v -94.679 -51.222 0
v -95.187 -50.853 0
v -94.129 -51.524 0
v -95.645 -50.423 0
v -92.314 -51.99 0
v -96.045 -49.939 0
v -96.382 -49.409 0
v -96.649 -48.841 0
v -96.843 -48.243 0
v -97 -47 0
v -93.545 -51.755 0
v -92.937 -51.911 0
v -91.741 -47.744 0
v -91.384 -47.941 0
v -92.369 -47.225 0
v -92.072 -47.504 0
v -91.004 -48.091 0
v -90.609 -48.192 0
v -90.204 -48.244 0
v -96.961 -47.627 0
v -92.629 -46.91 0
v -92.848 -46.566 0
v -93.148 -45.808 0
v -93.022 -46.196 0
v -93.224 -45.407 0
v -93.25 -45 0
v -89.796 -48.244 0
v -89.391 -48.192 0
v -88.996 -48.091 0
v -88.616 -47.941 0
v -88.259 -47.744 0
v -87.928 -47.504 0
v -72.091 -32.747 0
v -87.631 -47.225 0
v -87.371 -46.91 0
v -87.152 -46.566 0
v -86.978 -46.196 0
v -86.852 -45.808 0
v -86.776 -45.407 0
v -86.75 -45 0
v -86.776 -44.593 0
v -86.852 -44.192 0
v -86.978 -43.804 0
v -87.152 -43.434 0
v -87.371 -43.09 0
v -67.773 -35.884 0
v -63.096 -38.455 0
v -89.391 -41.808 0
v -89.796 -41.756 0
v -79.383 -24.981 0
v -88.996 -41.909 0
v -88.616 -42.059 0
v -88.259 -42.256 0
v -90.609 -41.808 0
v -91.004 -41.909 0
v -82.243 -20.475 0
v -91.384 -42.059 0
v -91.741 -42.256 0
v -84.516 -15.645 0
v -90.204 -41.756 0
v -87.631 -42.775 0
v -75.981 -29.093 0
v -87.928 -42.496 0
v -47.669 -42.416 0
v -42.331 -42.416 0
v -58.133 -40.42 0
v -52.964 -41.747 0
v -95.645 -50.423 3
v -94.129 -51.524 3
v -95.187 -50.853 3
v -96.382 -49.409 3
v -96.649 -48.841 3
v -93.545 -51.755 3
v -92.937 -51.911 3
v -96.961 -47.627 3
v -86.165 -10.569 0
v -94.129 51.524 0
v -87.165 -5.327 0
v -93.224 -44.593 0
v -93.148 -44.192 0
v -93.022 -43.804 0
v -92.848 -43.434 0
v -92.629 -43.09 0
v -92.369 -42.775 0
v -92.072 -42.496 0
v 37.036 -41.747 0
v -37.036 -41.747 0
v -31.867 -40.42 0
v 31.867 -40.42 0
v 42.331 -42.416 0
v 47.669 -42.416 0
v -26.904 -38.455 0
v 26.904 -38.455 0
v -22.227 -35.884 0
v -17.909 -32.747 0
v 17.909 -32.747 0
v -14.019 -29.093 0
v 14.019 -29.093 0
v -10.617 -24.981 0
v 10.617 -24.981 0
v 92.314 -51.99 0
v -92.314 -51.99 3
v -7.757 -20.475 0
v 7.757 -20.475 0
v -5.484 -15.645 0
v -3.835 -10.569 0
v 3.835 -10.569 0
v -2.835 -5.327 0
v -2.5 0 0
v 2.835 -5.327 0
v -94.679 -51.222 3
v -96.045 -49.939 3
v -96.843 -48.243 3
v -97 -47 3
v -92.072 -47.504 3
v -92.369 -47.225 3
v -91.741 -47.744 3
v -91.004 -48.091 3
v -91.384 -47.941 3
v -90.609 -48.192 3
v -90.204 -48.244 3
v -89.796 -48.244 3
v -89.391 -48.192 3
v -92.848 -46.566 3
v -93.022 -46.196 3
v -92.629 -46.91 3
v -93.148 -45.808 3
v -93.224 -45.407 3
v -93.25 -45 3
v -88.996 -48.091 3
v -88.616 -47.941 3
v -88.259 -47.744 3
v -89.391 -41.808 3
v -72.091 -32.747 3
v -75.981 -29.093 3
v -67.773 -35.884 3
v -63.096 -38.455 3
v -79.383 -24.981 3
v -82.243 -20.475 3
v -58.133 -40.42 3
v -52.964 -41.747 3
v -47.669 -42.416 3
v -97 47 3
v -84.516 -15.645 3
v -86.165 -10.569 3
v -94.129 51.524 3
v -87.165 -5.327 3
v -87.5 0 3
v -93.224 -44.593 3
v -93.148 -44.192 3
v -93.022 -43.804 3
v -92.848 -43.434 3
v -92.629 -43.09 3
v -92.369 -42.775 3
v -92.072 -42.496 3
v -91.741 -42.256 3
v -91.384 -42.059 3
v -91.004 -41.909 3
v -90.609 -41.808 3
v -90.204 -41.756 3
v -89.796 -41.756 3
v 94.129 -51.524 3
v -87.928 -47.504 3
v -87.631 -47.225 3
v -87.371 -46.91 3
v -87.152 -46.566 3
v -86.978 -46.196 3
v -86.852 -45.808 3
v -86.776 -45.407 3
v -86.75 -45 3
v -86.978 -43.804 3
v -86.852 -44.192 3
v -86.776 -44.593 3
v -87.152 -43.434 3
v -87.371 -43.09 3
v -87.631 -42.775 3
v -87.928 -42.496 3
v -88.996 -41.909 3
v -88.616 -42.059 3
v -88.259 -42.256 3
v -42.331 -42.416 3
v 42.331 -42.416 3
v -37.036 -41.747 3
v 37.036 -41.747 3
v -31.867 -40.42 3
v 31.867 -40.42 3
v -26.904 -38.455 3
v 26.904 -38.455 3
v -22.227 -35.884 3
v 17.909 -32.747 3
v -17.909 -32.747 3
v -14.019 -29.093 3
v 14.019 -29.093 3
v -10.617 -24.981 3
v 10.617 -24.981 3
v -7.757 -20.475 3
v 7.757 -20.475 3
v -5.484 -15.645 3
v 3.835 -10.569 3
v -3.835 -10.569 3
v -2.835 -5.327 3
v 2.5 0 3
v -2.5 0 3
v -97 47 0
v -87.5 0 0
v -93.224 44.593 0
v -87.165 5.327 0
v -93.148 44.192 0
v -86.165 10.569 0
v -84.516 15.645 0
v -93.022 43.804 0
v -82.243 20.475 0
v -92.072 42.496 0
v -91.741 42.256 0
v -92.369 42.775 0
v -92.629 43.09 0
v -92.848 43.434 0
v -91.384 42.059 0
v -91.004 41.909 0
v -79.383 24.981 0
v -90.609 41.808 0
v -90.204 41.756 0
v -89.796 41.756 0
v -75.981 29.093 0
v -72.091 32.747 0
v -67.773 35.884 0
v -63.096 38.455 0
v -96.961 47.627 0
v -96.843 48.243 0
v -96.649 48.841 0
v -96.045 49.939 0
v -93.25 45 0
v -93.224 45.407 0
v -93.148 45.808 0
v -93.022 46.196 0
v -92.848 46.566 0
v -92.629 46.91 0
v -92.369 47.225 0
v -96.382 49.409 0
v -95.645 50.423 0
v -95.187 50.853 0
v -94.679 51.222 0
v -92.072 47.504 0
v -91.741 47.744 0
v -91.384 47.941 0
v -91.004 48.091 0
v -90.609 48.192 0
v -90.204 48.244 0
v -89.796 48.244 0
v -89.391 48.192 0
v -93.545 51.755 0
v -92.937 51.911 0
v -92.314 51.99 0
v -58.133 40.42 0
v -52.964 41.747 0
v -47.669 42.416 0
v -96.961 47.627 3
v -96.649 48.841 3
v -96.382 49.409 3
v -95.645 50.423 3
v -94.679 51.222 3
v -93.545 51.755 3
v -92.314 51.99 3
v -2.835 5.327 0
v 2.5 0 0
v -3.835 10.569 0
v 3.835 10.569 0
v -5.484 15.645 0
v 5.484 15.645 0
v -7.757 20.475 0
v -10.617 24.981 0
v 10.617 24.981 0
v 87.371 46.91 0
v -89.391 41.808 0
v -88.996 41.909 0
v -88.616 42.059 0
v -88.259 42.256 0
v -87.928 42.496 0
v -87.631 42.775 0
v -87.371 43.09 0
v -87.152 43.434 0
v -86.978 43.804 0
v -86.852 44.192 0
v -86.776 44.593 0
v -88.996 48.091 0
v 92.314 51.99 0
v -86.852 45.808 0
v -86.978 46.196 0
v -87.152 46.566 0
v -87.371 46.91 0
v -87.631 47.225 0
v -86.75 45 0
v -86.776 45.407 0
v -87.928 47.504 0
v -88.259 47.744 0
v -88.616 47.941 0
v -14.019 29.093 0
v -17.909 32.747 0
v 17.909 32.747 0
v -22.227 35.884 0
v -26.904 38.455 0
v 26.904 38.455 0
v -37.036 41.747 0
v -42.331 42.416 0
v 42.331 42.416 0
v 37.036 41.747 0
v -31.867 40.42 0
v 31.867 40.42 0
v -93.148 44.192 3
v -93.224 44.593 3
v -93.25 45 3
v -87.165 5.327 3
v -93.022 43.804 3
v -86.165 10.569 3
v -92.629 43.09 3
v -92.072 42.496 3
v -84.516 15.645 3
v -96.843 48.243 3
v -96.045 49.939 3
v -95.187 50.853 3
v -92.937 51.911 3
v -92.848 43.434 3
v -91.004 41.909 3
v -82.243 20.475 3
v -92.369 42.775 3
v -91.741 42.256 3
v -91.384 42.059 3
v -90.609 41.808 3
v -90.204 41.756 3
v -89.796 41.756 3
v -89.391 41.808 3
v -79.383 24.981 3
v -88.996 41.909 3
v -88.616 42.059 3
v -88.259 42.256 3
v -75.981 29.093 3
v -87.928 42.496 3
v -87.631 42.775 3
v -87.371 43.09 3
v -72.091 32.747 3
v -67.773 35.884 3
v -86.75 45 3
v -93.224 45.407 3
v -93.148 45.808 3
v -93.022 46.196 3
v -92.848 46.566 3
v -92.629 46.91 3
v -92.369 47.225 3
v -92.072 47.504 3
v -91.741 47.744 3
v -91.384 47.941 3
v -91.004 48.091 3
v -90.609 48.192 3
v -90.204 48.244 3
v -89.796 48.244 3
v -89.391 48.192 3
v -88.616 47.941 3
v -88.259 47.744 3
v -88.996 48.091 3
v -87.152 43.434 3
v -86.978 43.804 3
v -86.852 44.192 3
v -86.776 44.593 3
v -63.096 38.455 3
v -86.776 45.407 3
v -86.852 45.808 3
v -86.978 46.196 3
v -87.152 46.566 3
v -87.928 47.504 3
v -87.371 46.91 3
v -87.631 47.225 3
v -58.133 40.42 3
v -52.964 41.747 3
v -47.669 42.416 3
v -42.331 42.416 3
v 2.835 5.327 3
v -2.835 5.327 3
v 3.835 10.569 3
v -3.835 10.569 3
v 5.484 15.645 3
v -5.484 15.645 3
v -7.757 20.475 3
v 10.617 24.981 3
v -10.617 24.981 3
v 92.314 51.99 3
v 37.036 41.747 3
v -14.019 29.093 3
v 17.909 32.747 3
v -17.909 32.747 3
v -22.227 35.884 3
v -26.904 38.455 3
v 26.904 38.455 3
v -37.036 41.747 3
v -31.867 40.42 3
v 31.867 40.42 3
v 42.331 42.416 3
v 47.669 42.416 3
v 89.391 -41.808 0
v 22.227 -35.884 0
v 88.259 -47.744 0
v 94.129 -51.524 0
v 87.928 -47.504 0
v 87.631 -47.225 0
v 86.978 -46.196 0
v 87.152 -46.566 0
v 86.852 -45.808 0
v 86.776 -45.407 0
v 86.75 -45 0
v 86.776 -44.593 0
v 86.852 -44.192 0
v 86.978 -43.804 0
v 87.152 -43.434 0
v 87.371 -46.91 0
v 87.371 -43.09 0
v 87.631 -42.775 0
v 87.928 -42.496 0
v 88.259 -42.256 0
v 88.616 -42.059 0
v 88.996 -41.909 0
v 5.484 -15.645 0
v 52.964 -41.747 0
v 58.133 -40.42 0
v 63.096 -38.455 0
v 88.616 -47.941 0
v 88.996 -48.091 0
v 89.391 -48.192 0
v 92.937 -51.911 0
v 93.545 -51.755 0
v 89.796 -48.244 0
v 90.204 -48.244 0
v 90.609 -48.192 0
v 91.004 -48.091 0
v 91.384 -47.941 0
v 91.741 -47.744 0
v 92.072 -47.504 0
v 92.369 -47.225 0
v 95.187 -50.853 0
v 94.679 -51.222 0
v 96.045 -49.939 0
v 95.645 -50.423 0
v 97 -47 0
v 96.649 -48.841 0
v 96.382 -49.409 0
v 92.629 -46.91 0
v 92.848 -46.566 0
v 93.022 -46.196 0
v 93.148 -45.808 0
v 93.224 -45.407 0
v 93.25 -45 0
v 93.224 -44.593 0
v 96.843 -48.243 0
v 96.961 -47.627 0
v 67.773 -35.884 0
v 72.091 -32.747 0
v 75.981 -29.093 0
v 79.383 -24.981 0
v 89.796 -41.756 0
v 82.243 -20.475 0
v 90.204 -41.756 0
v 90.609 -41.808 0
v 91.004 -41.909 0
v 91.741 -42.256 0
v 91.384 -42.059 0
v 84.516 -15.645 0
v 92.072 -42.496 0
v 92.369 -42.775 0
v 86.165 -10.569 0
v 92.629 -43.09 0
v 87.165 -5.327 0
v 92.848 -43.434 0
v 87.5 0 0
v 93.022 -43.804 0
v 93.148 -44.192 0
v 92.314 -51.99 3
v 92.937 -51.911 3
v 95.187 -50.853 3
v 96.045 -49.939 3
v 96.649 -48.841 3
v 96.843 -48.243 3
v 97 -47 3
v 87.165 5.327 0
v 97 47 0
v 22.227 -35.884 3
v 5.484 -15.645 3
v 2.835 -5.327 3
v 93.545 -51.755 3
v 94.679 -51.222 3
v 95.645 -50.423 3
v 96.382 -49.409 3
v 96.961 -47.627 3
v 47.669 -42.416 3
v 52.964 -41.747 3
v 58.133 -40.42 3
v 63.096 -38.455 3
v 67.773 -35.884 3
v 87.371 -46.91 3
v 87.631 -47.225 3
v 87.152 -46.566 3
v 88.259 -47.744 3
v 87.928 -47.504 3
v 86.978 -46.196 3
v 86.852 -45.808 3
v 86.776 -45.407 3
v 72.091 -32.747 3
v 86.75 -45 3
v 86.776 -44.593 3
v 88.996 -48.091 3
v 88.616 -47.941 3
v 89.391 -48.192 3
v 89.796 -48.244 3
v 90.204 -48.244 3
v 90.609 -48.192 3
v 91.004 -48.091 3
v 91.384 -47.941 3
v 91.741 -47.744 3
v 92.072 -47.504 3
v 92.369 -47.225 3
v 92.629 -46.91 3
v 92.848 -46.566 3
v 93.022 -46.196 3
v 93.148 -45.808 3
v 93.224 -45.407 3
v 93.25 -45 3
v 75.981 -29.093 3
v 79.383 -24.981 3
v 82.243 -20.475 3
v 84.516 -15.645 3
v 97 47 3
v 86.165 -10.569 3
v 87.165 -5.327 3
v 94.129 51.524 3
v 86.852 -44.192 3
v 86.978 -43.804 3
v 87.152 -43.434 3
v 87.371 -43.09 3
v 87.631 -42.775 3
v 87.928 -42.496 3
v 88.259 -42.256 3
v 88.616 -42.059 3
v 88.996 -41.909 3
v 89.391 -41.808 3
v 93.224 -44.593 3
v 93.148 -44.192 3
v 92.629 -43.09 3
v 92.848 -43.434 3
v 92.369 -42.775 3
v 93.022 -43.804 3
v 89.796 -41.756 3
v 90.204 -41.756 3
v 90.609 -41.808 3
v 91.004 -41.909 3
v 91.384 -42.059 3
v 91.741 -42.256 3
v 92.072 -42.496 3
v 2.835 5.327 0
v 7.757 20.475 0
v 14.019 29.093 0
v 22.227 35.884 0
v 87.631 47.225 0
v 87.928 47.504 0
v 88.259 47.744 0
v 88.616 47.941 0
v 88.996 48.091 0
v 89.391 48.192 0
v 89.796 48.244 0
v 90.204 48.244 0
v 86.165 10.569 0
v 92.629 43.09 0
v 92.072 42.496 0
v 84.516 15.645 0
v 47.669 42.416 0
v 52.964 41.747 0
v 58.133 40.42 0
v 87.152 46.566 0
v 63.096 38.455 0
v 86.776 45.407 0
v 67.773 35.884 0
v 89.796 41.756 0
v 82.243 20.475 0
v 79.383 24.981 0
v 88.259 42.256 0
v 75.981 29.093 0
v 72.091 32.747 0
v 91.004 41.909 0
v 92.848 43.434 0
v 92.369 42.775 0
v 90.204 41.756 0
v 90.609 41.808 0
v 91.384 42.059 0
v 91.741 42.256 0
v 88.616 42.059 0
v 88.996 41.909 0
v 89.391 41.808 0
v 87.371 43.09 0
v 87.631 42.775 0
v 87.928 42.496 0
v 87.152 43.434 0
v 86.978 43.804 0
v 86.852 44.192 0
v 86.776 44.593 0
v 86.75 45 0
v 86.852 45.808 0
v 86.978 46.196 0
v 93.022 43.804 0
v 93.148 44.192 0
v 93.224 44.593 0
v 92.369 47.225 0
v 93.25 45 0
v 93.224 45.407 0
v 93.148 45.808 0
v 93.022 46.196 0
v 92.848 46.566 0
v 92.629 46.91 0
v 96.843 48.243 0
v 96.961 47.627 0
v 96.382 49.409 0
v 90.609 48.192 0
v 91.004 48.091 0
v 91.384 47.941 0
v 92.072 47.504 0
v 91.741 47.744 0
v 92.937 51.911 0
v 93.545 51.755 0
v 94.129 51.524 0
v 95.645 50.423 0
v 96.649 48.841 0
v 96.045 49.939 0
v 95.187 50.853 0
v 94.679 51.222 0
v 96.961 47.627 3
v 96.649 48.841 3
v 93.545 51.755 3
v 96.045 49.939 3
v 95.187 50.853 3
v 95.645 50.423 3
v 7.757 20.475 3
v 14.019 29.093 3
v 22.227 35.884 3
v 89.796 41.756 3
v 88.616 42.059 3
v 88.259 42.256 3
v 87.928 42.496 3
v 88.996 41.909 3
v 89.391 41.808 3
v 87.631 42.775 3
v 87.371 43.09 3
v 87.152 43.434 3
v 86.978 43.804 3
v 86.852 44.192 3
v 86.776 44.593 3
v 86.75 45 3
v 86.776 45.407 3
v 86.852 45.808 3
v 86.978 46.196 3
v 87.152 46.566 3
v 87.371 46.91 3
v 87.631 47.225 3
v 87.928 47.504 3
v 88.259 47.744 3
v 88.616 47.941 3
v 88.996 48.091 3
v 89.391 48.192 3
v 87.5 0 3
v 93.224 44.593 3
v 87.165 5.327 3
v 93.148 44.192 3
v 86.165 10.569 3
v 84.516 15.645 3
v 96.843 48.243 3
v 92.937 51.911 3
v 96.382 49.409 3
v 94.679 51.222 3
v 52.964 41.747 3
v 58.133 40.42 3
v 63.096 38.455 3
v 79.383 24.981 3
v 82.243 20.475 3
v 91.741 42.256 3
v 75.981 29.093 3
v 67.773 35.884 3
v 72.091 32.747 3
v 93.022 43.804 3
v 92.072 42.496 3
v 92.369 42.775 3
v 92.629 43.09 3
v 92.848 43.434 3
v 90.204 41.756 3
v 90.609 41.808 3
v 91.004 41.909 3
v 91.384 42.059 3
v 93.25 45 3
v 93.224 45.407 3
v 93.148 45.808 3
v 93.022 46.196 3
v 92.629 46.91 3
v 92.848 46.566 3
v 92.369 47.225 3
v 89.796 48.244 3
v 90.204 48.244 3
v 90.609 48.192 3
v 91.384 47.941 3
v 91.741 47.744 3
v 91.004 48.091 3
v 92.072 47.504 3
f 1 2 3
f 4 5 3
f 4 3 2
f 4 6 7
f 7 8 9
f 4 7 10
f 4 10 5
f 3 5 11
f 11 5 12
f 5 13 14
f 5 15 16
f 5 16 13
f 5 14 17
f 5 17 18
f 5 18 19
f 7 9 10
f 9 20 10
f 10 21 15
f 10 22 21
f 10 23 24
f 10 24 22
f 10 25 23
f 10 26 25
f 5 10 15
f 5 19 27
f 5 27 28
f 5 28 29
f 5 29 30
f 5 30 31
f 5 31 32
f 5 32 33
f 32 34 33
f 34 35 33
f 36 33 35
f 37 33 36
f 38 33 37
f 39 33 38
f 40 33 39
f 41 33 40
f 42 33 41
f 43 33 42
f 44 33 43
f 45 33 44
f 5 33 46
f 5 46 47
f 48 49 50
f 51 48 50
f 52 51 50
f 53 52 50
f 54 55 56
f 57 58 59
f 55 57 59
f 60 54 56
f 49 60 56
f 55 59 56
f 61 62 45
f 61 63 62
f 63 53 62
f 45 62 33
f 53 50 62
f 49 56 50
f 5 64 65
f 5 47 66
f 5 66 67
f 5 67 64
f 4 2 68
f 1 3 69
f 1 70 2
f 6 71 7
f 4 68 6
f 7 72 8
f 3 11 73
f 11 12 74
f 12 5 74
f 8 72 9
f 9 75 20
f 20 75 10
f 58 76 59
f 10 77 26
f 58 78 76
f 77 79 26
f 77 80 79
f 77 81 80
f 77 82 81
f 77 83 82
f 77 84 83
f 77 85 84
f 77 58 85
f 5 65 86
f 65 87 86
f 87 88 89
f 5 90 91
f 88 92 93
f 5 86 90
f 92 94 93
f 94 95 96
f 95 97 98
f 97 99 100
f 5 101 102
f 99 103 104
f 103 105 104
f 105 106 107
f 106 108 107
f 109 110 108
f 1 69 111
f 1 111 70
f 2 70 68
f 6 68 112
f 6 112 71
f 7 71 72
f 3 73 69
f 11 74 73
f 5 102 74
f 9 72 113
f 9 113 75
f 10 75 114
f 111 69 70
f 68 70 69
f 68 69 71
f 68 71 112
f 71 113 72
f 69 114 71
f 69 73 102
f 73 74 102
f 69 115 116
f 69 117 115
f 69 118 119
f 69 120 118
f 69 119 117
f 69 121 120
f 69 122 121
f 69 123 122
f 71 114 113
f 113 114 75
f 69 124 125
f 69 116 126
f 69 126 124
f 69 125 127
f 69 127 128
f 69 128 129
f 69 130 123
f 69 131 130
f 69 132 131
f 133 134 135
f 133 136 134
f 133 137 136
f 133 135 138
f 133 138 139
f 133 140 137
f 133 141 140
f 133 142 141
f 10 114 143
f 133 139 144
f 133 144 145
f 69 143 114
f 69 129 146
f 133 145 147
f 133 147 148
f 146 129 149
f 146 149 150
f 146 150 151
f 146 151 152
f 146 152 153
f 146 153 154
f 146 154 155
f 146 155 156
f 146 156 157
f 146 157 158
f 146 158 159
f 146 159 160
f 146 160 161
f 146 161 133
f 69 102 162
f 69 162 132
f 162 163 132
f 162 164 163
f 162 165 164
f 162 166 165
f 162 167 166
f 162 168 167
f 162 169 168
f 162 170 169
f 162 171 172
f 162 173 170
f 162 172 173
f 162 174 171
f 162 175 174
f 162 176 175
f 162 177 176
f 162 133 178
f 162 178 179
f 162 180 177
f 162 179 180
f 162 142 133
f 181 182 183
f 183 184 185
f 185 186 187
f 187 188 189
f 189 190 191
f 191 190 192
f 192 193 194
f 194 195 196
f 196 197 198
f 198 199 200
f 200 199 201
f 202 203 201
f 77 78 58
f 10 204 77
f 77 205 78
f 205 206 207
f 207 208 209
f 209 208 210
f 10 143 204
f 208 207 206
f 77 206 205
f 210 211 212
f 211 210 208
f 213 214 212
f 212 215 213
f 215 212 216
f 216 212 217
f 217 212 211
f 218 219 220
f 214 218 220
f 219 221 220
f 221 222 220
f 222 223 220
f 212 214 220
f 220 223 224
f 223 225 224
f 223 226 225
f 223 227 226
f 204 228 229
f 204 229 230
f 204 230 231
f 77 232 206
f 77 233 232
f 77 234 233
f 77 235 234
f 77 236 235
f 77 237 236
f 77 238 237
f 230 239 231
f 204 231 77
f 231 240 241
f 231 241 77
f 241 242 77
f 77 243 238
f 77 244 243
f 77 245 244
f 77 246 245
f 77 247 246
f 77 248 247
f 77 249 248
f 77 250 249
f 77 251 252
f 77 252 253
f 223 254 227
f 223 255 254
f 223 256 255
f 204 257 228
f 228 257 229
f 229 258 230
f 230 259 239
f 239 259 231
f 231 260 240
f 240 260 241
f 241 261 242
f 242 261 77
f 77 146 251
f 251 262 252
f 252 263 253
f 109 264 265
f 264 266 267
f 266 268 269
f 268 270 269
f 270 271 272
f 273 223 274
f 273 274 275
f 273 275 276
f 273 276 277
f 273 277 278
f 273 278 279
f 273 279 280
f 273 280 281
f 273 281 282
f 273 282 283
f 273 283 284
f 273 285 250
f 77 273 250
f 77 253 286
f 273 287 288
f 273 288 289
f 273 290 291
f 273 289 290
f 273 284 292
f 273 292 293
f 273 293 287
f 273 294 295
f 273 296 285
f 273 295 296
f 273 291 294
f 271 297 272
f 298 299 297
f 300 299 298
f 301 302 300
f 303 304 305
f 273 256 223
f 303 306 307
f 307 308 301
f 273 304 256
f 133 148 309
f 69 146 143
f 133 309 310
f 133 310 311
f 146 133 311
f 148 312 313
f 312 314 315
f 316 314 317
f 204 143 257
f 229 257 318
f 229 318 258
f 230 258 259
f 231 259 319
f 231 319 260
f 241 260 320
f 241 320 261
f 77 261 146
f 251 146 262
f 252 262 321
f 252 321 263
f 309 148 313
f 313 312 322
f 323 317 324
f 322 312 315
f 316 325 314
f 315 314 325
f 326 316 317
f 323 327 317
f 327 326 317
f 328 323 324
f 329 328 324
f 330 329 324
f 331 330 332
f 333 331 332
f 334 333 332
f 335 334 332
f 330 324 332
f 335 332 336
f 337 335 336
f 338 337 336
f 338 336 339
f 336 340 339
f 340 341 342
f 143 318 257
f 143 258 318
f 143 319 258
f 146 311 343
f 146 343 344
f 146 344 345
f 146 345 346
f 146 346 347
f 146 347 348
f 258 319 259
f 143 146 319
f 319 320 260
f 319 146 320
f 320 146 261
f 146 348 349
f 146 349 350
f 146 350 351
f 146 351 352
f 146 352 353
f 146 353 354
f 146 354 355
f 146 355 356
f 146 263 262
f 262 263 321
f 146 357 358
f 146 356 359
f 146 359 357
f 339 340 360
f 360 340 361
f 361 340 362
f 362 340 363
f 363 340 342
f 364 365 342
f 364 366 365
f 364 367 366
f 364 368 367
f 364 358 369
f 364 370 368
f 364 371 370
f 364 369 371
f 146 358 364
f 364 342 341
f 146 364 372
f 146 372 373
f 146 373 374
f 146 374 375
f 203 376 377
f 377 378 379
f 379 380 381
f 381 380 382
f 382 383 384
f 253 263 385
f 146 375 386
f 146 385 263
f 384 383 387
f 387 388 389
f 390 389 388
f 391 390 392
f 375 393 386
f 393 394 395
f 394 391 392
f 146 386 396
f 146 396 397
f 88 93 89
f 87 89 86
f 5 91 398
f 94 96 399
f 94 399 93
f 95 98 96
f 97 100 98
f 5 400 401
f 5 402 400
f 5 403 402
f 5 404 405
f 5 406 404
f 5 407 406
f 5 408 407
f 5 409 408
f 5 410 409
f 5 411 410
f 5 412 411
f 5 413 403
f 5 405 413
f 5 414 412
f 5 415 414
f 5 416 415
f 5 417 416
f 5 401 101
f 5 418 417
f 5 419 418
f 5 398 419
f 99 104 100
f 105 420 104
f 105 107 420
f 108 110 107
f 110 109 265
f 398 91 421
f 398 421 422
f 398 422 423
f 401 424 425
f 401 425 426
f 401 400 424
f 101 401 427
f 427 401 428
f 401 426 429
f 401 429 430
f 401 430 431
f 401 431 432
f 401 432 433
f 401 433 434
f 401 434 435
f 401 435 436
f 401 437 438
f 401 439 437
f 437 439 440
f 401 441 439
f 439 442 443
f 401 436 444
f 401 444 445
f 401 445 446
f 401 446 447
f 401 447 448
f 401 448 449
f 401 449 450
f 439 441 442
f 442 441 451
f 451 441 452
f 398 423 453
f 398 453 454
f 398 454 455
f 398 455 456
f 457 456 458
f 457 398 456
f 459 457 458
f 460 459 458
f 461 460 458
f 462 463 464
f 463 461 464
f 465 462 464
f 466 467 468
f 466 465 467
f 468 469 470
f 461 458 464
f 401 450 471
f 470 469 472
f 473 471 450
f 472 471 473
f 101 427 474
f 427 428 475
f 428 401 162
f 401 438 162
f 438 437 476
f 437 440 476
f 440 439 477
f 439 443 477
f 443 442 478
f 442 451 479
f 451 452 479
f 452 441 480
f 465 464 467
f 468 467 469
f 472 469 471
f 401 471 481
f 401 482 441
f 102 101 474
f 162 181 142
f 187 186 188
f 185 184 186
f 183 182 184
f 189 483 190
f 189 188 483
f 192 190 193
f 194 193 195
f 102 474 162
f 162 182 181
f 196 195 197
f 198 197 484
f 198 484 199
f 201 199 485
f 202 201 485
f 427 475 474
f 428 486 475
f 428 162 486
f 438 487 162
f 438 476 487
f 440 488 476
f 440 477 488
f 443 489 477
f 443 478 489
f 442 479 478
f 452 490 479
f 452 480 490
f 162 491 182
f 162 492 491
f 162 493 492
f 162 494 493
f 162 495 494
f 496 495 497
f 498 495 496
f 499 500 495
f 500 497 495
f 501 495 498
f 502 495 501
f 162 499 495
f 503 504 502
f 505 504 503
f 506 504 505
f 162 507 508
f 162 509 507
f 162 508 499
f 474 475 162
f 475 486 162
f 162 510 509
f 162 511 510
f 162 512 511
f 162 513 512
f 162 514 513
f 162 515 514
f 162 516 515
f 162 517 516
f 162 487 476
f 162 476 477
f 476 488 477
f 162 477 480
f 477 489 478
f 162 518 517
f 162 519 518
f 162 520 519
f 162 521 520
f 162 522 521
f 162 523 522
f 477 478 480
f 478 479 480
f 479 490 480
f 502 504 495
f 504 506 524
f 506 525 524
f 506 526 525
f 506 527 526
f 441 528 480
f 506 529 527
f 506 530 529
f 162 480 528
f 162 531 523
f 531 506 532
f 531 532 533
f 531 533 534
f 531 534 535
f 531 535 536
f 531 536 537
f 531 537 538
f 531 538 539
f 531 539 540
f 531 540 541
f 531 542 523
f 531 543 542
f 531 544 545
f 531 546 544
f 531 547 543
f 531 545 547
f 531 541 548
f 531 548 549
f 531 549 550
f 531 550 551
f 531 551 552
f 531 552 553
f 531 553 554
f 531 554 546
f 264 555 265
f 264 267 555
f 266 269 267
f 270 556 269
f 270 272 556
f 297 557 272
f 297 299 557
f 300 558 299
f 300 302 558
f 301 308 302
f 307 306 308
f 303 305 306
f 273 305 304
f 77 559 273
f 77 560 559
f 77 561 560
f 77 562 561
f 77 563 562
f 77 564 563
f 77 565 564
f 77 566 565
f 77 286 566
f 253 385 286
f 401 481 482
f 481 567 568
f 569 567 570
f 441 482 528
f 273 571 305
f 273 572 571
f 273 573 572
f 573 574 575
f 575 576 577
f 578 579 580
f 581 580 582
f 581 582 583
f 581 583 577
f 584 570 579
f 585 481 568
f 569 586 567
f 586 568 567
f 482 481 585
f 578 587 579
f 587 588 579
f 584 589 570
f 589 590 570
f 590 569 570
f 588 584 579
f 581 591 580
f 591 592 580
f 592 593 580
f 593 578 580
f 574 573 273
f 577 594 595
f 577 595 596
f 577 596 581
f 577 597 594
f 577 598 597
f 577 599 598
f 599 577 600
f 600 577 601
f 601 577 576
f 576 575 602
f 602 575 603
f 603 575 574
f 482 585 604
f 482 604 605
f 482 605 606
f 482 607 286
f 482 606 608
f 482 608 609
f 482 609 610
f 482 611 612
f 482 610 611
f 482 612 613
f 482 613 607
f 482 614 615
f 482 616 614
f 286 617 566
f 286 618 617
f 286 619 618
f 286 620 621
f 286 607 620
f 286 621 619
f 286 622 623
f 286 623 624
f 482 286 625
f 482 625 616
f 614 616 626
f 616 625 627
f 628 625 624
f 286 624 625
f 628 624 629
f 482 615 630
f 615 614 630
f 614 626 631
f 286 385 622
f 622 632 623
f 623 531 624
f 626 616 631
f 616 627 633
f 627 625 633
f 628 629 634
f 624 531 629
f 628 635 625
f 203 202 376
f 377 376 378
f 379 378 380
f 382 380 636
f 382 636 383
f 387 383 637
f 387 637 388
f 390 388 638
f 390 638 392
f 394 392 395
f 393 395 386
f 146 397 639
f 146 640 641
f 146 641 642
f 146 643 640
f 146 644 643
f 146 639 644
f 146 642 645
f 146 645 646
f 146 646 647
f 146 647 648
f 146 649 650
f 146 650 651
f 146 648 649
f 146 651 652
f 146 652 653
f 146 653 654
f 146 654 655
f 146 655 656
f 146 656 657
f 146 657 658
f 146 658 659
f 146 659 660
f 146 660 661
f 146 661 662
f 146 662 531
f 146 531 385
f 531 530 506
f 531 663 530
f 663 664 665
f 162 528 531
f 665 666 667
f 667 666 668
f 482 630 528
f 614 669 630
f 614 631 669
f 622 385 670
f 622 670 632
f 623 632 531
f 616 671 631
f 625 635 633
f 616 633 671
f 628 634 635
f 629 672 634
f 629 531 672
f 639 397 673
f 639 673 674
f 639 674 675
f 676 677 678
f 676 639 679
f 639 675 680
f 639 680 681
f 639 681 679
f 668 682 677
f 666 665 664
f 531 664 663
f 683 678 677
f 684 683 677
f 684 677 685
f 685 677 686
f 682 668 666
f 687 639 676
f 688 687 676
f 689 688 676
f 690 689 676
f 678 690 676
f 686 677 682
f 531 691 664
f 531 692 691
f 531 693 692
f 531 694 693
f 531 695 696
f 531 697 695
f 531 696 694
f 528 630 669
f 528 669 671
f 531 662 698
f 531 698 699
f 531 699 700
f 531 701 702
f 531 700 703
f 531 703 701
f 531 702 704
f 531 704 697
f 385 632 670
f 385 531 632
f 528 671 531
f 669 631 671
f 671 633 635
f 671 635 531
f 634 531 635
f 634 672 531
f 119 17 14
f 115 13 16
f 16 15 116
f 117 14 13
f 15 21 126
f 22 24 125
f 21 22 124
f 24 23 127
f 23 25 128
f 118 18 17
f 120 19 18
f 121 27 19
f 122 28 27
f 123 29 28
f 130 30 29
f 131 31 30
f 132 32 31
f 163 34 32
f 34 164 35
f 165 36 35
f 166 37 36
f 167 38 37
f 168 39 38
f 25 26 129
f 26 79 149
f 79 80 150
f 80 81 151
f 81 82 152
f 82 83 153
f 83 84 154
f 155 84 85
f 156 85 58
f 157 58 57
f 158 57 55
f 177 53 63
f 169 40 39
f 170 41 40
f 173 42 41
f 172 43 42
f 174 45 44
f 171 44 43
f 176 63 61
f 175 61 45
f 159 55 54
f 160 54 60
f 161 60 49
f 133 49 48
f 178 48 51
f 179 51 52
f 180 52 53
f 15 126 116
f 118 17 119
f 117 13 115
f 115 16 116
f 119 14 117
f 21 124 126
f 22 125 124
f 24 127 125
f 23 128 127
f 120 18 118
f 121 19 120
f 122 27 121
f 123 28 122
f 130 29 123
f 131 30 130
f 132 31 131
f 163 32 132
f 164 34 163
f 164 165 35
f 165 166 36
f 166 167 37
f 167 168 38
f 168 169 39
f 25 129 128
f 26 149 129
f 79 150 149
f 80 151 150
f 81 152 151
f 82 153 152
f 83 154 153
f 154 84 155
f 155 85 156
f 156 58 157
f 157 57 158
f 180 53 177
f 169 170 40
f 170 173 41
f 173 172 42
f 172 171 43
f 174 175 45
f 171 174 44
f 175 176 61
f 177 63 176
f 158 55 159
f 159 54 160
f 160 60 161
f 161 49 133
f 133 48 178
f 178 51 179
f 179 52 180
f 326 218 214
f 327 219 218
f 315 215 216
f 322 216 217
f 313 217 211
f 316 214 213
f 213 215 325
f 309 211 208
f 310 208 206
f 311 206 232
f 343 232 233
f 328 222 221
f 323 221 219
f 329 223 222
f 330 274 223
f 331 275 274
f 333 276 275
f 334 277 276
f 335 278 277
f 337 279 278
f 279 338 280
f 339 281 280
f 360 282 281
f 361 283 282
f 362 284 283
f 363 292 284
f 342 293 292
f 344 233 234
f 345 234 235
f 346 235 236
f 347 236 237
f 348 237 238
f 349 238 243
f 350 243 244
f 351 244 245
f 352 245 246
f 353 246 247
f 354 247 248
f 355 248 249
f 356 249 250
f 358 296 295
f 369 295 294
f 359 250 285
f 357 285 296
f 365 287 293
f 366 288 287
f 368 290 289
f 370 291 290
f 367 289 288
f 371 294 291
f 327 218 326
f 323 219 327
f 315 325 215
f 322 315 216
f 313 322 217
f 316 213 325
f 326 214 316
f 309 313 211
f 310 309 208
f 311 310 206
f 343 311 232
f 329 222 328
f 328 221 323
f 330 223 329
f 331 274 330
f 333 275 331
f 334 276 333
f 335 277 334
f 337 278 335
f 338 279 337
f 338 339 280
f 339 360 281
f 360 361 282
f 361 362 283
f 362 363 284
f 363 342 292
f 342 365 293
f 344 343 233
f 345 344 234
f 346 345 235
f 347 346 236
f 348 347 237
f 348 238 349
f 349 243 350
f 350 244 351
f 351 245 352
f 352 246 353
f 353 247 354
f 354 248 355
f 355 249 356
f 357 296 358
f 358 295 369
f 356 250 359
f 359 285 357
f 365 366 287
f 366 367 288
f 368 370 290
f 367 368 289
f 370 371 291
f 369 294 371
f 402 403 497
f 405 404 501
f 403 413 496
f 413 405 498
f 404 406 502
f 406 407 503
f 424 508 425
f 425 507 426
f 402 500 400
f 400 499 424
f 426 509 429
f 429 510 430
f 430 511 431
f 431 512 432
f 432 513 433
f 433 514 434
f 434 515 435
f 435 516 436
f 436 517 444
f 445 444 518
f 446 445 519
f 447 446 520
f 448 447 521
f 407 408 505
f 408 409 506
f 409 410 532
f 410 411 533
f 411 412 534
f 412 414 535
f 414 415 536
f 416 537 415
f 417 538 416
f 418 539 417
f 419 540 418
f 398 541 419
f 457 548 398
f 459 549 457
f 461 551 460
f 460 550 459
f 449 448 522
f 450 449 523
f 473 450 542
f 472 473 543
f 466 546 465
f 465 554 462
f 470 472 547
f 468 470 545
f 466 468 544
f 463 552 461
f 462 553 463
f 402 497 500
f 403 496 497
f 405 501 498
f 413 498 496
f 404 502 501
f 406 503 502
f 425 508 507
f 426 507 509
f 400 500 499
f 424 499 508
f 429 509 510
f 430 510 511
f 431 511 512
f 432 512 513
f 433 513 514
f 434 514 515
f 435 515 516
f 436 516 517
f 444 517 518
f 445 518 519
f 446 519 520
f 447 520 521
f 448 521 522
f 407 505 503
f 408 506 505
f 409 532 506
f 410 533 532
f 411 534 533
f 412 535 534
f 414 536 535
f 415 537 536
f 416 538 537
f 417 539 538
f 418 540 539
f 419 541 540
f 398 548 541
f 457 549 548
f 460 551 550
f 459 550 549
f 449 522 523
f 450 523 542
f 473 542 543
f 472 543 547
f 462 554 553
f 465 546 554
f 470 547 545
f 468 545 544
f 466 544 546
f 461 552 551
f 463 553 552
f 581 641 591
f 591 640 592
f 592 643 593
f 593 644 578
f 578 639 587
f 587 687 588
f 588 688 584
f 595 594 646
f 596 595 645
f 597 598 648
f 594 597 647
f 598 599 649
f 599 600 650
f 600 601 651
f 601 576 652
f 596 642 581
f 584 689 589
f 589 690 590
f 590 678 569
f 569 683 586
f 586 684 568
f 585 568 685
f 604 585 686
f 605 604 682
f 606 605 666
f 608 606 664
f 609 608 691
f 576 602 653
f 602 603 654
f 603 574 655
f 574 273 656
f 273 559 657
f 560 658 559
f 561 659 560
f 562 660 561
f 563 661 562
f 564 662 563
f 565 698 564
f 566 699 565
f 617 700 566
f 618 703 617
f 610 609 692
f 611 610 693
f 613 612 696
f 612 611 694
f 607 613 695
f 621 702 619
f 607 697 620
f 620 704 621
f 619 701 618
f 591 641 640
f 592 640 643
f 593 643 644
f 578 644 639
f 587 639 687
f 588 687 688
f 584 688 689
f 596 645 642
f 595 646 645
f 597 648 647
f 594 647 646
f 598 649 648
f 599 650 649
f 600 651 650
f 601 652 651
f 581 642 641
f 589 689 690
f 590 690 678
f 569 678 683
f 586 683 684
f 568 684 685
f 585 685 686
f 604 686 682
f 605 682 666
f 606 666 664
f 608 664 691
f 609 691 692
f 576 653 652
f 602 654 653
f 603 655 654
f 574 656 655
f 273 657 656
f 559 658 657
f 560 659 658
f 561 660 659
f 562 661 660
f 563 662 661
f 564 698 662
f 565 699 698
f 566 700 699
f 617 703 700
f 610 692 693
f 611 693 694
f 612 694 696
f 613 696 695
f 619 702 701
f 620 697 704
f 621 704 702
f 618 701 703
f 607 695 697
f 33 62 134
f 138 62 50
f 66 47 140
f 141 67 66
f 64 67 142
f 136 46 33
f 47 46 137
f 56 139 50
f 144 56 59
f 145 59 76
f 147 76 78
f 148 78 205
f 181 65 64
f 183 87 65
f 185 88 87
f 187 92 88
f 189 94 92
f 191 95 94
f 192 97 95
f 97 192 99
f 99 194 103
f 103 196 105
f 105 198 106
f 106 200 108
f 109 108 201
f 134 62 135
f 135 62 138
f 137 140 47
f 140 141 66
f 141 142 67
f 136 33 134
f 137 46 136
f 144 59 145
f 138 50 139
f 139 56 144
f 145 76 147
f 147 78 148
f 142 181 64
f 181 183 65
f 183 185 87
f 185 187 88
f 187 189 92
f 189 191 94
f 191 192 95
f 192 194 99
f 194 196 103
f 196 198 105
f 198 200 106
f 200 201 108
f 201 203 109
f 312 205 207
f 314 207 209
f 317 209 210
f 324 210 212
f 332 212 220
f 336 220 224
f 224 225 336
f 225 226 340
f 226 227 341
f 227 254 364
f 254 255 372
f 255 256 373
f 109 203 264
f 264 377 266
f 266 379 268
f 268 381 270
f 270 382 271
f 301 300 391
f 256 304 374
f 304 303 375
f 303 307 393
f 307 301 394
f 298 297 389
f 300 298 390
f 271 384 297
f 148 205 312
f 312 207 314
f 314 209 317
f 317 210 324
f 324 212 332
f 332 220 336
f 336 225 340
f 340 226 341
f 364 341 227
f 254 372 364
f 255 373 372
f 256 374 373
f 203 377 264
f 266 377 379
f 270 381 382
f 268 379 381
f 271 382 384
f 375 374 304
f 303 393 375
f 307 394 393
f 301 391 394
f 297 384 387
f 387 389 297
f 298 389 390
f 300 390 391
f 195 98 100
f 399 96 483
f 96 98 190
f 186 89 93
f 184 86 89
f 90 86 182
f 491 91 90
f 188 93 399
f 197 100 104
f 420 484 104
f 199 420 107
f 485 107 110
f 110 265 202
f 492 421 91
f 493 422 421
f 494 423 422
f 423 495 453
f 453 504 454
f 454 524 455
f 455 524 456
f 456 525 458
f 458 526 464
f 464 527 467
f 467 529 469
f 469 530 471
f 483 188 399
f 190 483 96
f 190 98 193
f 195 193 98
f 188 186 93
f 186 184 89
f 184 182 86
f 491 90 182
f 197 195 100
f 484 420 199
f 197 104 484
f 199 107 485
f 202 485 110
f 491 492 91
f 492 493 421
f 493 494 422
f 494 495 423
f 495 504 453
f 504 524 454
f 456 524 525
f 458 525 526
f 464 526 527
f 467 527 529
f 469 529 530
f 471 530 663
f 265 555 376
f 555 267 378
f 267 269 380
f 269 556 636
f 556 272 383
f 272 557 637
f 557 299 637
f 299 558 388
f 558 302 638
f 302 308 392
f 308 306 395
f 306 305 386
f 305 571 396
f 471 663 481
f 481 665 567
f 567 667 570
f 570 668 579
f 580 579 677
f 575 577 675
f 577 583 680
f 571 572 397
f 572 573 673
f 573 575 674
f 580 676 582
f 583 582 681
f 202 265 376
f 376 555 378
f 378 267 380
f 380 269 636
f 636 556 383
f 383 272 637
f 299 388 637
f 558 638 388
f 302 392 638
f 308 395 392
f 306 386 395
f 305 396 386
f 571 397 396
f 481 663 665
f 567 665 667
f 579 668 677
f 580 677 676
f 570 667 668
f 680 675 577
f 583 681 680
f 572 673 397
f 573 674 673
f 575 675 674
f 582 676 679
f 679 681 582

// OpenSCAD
$fn = 50;

difference() {
	union() {
		hull() {
			translate(v = [-92.0, 47.0, 0]) {
				cylinder(h = 3, r = 5);
			}
			translate(v = [92.0, 47.0, 0]) {
				cylinder(h = 3, r = 5);
			}
			translate(v = [-92.0, -47.0, 0]) {
				cylinder(h = 3, r = 5);
			}
			translate(v = [92.0, -47.0, 0]) {
				cylinder(h = 3, r = 5);
			}
		}
	}
	union() {
		translate(v = [-90.0, -45.0, -100.0]) {
			cylinder(h = 200, r = 3.25);
		}
		translate(v = [-90.0, 45.0, -100.0]) {
			cylinder(h = 200, r = 3.25);
		}
		translate(v = [90.0, -45.0, -100.0]) {
			cylinder(h = 200, r = 3.25);
		}
		translate(v = [90.0, 45.0, -100.0]) {
			cylinder(h = 200, r = 3.25);
		}
		translate(v = [-90.0, -45.0, -100.0]) {
			cylinder(h = 200, r = 1.8);
		}
		translate(v = [-90.0, 45.0, -100.0]) {
			cylinder(h = 200, r = 1.8);
		}
		translate(v = [90.0, -45.0, -100.0]) {
			cylinder(h = 200, r = 1.8);
		}
		translate(v = [90.0, 45.0, -100.0]) {
			cylinder(h = 200, r = 1.8);
		}
		translate(v = [-45.0, 0, 0.0]) {
			cylinder(h = 3, r = 42.5);
		}
		translate(v = [45.0, 0, 0.0]) {
			cylinder(h = 3, r = 42.5);
		}
	}
}
